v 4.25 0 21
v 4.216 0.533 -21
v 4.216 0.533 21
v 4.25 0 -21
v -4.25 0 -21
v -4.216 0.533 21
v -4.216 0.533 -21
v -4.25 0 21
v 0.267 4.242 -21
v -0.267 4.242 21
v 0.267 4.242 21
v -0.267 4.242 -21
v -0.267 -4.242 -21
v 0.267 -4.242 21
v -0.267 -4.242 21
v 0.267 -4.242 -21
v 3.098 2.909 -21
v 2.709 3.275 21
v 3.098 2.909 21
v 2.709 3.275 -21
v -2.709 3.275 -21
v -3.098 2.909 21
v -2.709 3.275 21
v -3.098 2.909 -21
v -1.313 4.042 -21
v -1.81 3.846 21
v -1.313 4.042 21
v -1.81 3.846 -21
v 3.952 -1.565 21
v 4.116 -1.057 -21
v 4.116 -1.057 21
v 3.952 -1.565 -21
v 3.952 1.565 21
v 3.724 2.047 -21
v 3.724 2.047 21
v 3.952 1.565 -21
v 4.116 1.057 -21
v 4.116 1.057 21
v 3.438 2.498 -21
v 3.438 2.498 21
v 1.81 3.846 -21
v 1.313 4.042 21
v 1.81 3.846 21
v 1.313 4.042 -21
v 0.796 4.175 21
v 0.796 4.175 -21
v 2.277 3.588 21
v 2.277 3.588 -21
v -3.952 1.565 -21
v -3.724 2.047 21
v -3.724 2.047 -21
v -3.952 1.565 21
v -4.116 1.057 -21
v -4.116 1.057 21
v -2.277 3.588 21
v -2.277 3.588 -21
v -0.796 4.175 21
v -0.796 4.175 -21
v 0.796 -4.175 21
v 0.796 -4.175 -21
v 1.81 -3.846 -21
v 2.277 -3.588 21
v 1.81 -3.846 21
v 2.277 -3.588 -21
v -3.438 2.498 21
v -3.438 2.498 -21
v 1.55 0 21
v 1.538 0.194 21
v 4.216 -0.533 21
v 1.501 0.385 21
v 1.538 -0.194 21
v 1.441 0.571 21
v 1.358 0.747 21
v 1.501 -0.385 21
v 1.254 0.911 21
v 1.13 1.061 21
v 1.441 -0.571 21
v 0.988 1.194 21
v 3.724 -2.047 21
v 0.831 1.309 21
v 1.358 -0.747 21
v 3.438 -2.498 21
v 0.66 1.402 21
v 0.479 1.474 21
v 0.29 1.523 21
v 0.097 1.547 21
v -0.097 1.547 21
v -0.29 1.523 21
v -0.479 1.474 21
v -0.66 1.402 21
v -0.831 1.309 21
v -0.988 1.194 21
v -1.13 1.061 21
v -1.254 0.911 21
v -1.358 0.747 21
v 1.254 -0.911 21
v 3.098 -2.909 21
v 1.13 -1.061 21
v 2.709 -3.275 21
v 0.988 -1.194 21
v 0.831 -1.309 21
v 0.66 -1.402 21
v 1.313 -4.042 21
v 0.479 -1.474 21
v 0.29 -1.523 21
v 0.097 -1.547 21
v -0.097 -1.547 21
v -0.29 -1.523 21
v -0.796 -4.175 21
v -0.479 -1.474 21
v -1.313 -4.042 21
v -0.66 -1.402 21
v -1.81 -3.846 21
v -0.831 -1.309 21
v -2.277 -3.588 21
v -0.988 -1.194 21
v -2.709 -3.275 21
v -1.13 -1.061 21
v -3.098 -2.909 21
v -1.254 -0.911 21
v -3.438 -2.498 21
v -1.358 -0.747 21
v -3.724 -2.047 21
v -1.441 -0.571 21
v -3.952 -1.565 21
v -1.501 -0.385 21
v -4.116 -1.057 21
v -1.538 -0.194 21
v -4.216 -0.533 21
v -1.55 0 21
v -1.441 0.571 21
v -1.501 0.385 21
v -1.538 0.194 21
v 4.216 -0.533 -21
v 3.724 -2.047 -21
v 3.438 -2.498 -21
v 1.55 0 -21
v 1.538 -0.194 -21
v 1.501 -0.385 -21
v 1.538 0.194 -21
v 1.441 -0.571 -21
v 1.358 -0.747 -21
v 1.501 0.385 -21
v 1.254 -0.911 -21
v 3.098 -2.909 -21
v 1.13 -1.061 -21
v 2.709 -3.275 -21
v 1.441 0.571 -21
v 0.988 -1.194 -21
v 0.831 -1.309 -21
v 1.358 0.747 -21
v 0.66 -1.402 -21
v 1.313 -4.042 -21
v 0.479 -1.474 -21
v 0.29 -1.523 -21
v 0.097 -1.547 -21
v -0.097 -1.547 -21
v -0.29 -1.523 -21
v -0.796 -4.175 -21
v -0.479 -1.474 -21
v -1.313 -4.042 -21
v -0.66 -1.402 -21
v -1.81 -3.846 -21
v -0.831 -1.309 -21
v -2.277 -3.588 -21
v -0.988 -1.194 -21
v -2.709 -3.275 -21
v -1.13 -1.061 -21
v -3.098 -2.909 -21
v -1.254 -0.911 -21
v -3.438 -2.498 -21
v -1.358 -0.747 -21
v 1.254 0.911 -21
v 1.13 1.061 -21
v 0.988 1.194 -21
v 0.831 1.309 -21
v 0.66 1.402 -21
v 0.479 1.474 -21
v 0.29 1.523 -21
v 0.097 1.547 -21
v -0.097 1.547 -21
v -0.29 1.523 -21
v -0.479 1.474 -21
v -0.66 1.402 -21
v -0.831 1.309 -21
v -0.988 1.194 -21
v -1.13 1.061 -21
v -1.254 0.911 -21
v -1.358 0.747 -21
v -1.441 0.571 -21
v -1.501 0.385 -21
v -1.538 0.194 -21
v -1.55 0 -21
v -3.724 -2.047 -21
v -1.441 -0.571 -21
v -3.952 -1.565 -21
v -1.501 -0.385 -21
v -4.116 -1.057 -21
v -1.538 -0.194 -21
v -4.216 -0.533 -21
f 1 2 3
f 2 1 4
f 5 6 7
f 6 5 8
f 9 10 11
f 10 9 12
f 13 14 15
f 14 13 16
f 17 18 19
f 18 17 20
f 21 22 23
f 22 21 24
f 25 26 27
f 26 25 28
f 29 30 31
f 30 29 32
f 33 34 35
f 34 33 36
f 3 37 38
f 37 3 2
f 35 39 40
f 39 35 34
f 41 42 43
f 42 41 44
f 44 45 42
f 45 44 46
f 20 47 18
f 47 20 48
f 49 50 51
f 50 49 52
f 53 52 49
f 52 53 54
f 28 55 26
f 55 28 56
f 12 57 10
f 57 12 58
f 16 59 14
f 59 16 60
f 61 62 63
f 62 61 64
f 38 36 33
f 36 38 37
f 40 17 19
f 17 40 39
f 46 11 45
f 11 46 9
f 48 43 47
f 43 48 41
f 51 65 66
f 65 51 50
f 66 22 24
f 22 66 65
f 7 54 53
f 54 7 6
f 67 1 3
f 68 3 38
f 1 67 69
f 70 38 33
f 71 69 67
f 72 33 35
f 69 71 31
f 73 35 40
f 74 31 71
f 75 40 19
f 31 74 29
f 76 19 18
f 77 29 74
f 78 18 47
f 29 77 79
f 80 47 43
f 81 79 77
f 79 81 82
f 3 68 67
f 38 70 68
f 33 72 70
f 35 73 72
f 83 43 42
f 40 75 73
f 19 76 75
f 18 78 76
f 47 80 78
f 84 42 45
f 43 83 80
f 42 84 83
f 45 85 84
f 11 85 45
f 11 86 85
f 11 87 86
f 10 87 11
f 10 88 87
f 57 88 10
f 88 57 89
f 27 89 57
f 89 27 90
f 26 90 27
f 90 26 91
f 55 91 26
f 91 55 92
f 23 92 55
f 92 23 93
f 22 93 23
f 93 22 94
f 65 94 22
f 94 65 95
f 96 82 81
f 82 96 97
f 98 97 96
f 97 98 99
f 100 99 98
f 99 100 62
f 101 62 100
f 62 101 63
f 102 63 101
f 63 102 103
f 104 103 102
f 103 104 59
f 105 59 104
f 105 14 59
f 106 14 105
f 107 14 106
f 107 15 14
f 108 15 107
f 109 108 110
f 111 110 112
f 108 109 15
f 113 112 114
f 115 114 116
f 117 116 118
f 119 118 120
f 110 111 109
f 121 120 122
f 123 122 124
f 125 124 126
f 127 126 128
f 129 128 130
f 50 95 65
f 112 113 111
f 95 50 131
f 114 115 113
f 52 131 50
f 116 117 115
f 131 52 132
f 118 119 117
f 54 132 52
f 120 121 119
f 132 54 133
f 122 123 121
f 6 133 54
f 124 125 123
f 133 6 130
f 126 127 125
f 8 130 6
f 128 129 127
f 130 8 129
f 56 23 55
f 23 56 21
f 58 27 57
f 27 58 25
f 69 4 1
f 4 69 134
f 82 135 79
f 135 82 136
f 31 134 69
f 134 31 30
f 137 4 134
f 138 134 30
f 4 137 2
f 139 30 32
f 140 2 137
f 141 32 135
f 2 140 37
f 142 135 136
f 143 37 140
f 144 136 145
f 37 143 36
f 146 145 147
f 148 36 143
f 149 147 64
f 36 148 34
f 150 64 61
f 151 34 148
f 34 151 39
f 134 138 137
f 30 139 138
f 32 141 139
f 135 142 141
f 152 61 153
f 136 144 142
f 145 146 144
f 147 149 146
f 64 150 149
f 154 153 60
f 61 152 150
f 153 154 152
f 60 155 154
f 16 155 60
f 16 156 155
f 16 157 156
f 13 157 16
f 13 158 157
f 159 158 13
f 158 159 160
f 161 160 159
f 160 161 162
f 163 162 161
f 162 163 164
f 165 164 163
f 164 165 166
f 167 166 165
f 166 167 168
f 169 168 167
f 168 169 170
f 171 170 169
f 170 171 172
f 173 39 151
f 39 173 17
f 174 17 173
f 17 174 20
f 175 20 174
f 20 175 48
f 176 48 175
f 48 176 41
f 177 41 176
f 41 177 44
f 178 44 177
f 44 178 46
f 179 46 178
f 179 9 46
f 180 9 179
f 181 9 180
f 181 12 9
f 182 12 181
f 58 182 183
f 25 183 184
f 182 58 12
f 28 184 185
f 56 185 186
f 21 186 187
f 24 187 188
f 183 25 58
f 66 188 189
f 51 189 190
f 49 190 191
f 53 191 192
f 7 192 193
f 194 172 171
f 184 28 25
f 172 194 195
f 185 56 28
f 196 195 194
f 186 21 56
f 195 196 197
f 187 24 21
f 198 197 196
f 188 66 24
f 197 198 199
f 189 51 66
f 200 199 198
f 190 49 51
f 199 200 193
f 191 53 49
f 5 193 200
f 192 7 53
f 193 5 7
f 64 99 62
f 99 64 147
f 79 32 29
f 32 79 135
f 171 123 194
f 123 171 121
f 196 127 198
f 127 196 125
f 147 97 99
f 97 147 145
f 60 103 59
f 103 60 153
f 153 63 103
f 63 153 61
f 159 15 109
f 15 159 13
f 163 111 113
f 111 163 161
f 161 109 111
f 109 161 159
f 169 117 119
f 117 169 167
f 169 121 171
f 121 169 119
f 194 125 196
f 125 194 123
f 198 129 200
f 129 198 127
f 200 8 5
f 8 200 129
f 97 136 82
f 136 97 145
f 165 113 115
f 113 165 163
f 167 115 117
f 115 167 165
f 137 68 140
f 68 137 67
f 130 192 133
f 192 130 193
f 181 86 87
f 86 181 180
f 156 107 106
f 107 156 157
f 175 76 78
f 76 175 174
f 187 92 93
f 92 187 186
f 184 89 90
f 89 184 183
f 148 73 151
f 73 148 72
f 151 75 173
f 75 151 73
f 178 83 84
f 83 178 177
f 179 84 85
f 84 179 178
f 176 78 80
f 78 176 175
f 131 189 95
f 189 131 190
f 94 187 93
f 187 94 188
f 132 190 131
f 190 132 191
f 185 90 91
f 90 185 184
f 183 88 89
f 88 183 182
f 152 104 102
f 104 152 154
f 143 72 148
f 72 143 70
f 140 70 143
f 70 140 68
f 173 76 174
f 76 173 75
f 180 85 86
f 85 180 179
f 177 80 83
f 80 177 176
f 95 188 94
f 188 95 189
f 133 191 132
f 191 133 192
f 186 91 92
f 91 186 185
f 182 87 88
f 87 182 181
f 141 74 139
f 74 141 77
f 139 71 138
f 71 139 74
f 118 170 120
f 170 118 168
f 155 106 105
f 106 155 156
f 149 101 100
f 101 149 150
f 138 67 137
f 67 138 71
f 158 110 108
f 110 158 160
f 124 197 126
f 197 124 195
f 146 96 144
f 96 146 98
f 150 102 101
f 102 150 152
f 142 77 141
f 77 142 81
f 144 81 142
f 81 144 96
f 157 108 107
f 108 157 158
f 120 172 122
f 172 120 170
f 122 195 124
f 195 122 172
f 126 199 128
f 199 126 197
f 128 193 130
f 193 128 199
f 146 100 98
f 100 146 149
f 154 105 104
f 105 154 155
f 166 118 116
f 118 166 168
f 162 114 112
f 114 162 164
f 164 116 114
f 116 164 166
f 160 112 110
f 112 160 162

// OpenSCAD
$fn = 50;


difference() {
	union() {
		translate(v = [0, 0, -21.0000000000]) {
			cylinder(h = 42, r = 4.2500000000);
		}
	}
	union() {
		translate(v = [0, 0, -100.0000000000]) {
			cylinder(h = 200, r = 1.5500000000);
		}
	}
}
